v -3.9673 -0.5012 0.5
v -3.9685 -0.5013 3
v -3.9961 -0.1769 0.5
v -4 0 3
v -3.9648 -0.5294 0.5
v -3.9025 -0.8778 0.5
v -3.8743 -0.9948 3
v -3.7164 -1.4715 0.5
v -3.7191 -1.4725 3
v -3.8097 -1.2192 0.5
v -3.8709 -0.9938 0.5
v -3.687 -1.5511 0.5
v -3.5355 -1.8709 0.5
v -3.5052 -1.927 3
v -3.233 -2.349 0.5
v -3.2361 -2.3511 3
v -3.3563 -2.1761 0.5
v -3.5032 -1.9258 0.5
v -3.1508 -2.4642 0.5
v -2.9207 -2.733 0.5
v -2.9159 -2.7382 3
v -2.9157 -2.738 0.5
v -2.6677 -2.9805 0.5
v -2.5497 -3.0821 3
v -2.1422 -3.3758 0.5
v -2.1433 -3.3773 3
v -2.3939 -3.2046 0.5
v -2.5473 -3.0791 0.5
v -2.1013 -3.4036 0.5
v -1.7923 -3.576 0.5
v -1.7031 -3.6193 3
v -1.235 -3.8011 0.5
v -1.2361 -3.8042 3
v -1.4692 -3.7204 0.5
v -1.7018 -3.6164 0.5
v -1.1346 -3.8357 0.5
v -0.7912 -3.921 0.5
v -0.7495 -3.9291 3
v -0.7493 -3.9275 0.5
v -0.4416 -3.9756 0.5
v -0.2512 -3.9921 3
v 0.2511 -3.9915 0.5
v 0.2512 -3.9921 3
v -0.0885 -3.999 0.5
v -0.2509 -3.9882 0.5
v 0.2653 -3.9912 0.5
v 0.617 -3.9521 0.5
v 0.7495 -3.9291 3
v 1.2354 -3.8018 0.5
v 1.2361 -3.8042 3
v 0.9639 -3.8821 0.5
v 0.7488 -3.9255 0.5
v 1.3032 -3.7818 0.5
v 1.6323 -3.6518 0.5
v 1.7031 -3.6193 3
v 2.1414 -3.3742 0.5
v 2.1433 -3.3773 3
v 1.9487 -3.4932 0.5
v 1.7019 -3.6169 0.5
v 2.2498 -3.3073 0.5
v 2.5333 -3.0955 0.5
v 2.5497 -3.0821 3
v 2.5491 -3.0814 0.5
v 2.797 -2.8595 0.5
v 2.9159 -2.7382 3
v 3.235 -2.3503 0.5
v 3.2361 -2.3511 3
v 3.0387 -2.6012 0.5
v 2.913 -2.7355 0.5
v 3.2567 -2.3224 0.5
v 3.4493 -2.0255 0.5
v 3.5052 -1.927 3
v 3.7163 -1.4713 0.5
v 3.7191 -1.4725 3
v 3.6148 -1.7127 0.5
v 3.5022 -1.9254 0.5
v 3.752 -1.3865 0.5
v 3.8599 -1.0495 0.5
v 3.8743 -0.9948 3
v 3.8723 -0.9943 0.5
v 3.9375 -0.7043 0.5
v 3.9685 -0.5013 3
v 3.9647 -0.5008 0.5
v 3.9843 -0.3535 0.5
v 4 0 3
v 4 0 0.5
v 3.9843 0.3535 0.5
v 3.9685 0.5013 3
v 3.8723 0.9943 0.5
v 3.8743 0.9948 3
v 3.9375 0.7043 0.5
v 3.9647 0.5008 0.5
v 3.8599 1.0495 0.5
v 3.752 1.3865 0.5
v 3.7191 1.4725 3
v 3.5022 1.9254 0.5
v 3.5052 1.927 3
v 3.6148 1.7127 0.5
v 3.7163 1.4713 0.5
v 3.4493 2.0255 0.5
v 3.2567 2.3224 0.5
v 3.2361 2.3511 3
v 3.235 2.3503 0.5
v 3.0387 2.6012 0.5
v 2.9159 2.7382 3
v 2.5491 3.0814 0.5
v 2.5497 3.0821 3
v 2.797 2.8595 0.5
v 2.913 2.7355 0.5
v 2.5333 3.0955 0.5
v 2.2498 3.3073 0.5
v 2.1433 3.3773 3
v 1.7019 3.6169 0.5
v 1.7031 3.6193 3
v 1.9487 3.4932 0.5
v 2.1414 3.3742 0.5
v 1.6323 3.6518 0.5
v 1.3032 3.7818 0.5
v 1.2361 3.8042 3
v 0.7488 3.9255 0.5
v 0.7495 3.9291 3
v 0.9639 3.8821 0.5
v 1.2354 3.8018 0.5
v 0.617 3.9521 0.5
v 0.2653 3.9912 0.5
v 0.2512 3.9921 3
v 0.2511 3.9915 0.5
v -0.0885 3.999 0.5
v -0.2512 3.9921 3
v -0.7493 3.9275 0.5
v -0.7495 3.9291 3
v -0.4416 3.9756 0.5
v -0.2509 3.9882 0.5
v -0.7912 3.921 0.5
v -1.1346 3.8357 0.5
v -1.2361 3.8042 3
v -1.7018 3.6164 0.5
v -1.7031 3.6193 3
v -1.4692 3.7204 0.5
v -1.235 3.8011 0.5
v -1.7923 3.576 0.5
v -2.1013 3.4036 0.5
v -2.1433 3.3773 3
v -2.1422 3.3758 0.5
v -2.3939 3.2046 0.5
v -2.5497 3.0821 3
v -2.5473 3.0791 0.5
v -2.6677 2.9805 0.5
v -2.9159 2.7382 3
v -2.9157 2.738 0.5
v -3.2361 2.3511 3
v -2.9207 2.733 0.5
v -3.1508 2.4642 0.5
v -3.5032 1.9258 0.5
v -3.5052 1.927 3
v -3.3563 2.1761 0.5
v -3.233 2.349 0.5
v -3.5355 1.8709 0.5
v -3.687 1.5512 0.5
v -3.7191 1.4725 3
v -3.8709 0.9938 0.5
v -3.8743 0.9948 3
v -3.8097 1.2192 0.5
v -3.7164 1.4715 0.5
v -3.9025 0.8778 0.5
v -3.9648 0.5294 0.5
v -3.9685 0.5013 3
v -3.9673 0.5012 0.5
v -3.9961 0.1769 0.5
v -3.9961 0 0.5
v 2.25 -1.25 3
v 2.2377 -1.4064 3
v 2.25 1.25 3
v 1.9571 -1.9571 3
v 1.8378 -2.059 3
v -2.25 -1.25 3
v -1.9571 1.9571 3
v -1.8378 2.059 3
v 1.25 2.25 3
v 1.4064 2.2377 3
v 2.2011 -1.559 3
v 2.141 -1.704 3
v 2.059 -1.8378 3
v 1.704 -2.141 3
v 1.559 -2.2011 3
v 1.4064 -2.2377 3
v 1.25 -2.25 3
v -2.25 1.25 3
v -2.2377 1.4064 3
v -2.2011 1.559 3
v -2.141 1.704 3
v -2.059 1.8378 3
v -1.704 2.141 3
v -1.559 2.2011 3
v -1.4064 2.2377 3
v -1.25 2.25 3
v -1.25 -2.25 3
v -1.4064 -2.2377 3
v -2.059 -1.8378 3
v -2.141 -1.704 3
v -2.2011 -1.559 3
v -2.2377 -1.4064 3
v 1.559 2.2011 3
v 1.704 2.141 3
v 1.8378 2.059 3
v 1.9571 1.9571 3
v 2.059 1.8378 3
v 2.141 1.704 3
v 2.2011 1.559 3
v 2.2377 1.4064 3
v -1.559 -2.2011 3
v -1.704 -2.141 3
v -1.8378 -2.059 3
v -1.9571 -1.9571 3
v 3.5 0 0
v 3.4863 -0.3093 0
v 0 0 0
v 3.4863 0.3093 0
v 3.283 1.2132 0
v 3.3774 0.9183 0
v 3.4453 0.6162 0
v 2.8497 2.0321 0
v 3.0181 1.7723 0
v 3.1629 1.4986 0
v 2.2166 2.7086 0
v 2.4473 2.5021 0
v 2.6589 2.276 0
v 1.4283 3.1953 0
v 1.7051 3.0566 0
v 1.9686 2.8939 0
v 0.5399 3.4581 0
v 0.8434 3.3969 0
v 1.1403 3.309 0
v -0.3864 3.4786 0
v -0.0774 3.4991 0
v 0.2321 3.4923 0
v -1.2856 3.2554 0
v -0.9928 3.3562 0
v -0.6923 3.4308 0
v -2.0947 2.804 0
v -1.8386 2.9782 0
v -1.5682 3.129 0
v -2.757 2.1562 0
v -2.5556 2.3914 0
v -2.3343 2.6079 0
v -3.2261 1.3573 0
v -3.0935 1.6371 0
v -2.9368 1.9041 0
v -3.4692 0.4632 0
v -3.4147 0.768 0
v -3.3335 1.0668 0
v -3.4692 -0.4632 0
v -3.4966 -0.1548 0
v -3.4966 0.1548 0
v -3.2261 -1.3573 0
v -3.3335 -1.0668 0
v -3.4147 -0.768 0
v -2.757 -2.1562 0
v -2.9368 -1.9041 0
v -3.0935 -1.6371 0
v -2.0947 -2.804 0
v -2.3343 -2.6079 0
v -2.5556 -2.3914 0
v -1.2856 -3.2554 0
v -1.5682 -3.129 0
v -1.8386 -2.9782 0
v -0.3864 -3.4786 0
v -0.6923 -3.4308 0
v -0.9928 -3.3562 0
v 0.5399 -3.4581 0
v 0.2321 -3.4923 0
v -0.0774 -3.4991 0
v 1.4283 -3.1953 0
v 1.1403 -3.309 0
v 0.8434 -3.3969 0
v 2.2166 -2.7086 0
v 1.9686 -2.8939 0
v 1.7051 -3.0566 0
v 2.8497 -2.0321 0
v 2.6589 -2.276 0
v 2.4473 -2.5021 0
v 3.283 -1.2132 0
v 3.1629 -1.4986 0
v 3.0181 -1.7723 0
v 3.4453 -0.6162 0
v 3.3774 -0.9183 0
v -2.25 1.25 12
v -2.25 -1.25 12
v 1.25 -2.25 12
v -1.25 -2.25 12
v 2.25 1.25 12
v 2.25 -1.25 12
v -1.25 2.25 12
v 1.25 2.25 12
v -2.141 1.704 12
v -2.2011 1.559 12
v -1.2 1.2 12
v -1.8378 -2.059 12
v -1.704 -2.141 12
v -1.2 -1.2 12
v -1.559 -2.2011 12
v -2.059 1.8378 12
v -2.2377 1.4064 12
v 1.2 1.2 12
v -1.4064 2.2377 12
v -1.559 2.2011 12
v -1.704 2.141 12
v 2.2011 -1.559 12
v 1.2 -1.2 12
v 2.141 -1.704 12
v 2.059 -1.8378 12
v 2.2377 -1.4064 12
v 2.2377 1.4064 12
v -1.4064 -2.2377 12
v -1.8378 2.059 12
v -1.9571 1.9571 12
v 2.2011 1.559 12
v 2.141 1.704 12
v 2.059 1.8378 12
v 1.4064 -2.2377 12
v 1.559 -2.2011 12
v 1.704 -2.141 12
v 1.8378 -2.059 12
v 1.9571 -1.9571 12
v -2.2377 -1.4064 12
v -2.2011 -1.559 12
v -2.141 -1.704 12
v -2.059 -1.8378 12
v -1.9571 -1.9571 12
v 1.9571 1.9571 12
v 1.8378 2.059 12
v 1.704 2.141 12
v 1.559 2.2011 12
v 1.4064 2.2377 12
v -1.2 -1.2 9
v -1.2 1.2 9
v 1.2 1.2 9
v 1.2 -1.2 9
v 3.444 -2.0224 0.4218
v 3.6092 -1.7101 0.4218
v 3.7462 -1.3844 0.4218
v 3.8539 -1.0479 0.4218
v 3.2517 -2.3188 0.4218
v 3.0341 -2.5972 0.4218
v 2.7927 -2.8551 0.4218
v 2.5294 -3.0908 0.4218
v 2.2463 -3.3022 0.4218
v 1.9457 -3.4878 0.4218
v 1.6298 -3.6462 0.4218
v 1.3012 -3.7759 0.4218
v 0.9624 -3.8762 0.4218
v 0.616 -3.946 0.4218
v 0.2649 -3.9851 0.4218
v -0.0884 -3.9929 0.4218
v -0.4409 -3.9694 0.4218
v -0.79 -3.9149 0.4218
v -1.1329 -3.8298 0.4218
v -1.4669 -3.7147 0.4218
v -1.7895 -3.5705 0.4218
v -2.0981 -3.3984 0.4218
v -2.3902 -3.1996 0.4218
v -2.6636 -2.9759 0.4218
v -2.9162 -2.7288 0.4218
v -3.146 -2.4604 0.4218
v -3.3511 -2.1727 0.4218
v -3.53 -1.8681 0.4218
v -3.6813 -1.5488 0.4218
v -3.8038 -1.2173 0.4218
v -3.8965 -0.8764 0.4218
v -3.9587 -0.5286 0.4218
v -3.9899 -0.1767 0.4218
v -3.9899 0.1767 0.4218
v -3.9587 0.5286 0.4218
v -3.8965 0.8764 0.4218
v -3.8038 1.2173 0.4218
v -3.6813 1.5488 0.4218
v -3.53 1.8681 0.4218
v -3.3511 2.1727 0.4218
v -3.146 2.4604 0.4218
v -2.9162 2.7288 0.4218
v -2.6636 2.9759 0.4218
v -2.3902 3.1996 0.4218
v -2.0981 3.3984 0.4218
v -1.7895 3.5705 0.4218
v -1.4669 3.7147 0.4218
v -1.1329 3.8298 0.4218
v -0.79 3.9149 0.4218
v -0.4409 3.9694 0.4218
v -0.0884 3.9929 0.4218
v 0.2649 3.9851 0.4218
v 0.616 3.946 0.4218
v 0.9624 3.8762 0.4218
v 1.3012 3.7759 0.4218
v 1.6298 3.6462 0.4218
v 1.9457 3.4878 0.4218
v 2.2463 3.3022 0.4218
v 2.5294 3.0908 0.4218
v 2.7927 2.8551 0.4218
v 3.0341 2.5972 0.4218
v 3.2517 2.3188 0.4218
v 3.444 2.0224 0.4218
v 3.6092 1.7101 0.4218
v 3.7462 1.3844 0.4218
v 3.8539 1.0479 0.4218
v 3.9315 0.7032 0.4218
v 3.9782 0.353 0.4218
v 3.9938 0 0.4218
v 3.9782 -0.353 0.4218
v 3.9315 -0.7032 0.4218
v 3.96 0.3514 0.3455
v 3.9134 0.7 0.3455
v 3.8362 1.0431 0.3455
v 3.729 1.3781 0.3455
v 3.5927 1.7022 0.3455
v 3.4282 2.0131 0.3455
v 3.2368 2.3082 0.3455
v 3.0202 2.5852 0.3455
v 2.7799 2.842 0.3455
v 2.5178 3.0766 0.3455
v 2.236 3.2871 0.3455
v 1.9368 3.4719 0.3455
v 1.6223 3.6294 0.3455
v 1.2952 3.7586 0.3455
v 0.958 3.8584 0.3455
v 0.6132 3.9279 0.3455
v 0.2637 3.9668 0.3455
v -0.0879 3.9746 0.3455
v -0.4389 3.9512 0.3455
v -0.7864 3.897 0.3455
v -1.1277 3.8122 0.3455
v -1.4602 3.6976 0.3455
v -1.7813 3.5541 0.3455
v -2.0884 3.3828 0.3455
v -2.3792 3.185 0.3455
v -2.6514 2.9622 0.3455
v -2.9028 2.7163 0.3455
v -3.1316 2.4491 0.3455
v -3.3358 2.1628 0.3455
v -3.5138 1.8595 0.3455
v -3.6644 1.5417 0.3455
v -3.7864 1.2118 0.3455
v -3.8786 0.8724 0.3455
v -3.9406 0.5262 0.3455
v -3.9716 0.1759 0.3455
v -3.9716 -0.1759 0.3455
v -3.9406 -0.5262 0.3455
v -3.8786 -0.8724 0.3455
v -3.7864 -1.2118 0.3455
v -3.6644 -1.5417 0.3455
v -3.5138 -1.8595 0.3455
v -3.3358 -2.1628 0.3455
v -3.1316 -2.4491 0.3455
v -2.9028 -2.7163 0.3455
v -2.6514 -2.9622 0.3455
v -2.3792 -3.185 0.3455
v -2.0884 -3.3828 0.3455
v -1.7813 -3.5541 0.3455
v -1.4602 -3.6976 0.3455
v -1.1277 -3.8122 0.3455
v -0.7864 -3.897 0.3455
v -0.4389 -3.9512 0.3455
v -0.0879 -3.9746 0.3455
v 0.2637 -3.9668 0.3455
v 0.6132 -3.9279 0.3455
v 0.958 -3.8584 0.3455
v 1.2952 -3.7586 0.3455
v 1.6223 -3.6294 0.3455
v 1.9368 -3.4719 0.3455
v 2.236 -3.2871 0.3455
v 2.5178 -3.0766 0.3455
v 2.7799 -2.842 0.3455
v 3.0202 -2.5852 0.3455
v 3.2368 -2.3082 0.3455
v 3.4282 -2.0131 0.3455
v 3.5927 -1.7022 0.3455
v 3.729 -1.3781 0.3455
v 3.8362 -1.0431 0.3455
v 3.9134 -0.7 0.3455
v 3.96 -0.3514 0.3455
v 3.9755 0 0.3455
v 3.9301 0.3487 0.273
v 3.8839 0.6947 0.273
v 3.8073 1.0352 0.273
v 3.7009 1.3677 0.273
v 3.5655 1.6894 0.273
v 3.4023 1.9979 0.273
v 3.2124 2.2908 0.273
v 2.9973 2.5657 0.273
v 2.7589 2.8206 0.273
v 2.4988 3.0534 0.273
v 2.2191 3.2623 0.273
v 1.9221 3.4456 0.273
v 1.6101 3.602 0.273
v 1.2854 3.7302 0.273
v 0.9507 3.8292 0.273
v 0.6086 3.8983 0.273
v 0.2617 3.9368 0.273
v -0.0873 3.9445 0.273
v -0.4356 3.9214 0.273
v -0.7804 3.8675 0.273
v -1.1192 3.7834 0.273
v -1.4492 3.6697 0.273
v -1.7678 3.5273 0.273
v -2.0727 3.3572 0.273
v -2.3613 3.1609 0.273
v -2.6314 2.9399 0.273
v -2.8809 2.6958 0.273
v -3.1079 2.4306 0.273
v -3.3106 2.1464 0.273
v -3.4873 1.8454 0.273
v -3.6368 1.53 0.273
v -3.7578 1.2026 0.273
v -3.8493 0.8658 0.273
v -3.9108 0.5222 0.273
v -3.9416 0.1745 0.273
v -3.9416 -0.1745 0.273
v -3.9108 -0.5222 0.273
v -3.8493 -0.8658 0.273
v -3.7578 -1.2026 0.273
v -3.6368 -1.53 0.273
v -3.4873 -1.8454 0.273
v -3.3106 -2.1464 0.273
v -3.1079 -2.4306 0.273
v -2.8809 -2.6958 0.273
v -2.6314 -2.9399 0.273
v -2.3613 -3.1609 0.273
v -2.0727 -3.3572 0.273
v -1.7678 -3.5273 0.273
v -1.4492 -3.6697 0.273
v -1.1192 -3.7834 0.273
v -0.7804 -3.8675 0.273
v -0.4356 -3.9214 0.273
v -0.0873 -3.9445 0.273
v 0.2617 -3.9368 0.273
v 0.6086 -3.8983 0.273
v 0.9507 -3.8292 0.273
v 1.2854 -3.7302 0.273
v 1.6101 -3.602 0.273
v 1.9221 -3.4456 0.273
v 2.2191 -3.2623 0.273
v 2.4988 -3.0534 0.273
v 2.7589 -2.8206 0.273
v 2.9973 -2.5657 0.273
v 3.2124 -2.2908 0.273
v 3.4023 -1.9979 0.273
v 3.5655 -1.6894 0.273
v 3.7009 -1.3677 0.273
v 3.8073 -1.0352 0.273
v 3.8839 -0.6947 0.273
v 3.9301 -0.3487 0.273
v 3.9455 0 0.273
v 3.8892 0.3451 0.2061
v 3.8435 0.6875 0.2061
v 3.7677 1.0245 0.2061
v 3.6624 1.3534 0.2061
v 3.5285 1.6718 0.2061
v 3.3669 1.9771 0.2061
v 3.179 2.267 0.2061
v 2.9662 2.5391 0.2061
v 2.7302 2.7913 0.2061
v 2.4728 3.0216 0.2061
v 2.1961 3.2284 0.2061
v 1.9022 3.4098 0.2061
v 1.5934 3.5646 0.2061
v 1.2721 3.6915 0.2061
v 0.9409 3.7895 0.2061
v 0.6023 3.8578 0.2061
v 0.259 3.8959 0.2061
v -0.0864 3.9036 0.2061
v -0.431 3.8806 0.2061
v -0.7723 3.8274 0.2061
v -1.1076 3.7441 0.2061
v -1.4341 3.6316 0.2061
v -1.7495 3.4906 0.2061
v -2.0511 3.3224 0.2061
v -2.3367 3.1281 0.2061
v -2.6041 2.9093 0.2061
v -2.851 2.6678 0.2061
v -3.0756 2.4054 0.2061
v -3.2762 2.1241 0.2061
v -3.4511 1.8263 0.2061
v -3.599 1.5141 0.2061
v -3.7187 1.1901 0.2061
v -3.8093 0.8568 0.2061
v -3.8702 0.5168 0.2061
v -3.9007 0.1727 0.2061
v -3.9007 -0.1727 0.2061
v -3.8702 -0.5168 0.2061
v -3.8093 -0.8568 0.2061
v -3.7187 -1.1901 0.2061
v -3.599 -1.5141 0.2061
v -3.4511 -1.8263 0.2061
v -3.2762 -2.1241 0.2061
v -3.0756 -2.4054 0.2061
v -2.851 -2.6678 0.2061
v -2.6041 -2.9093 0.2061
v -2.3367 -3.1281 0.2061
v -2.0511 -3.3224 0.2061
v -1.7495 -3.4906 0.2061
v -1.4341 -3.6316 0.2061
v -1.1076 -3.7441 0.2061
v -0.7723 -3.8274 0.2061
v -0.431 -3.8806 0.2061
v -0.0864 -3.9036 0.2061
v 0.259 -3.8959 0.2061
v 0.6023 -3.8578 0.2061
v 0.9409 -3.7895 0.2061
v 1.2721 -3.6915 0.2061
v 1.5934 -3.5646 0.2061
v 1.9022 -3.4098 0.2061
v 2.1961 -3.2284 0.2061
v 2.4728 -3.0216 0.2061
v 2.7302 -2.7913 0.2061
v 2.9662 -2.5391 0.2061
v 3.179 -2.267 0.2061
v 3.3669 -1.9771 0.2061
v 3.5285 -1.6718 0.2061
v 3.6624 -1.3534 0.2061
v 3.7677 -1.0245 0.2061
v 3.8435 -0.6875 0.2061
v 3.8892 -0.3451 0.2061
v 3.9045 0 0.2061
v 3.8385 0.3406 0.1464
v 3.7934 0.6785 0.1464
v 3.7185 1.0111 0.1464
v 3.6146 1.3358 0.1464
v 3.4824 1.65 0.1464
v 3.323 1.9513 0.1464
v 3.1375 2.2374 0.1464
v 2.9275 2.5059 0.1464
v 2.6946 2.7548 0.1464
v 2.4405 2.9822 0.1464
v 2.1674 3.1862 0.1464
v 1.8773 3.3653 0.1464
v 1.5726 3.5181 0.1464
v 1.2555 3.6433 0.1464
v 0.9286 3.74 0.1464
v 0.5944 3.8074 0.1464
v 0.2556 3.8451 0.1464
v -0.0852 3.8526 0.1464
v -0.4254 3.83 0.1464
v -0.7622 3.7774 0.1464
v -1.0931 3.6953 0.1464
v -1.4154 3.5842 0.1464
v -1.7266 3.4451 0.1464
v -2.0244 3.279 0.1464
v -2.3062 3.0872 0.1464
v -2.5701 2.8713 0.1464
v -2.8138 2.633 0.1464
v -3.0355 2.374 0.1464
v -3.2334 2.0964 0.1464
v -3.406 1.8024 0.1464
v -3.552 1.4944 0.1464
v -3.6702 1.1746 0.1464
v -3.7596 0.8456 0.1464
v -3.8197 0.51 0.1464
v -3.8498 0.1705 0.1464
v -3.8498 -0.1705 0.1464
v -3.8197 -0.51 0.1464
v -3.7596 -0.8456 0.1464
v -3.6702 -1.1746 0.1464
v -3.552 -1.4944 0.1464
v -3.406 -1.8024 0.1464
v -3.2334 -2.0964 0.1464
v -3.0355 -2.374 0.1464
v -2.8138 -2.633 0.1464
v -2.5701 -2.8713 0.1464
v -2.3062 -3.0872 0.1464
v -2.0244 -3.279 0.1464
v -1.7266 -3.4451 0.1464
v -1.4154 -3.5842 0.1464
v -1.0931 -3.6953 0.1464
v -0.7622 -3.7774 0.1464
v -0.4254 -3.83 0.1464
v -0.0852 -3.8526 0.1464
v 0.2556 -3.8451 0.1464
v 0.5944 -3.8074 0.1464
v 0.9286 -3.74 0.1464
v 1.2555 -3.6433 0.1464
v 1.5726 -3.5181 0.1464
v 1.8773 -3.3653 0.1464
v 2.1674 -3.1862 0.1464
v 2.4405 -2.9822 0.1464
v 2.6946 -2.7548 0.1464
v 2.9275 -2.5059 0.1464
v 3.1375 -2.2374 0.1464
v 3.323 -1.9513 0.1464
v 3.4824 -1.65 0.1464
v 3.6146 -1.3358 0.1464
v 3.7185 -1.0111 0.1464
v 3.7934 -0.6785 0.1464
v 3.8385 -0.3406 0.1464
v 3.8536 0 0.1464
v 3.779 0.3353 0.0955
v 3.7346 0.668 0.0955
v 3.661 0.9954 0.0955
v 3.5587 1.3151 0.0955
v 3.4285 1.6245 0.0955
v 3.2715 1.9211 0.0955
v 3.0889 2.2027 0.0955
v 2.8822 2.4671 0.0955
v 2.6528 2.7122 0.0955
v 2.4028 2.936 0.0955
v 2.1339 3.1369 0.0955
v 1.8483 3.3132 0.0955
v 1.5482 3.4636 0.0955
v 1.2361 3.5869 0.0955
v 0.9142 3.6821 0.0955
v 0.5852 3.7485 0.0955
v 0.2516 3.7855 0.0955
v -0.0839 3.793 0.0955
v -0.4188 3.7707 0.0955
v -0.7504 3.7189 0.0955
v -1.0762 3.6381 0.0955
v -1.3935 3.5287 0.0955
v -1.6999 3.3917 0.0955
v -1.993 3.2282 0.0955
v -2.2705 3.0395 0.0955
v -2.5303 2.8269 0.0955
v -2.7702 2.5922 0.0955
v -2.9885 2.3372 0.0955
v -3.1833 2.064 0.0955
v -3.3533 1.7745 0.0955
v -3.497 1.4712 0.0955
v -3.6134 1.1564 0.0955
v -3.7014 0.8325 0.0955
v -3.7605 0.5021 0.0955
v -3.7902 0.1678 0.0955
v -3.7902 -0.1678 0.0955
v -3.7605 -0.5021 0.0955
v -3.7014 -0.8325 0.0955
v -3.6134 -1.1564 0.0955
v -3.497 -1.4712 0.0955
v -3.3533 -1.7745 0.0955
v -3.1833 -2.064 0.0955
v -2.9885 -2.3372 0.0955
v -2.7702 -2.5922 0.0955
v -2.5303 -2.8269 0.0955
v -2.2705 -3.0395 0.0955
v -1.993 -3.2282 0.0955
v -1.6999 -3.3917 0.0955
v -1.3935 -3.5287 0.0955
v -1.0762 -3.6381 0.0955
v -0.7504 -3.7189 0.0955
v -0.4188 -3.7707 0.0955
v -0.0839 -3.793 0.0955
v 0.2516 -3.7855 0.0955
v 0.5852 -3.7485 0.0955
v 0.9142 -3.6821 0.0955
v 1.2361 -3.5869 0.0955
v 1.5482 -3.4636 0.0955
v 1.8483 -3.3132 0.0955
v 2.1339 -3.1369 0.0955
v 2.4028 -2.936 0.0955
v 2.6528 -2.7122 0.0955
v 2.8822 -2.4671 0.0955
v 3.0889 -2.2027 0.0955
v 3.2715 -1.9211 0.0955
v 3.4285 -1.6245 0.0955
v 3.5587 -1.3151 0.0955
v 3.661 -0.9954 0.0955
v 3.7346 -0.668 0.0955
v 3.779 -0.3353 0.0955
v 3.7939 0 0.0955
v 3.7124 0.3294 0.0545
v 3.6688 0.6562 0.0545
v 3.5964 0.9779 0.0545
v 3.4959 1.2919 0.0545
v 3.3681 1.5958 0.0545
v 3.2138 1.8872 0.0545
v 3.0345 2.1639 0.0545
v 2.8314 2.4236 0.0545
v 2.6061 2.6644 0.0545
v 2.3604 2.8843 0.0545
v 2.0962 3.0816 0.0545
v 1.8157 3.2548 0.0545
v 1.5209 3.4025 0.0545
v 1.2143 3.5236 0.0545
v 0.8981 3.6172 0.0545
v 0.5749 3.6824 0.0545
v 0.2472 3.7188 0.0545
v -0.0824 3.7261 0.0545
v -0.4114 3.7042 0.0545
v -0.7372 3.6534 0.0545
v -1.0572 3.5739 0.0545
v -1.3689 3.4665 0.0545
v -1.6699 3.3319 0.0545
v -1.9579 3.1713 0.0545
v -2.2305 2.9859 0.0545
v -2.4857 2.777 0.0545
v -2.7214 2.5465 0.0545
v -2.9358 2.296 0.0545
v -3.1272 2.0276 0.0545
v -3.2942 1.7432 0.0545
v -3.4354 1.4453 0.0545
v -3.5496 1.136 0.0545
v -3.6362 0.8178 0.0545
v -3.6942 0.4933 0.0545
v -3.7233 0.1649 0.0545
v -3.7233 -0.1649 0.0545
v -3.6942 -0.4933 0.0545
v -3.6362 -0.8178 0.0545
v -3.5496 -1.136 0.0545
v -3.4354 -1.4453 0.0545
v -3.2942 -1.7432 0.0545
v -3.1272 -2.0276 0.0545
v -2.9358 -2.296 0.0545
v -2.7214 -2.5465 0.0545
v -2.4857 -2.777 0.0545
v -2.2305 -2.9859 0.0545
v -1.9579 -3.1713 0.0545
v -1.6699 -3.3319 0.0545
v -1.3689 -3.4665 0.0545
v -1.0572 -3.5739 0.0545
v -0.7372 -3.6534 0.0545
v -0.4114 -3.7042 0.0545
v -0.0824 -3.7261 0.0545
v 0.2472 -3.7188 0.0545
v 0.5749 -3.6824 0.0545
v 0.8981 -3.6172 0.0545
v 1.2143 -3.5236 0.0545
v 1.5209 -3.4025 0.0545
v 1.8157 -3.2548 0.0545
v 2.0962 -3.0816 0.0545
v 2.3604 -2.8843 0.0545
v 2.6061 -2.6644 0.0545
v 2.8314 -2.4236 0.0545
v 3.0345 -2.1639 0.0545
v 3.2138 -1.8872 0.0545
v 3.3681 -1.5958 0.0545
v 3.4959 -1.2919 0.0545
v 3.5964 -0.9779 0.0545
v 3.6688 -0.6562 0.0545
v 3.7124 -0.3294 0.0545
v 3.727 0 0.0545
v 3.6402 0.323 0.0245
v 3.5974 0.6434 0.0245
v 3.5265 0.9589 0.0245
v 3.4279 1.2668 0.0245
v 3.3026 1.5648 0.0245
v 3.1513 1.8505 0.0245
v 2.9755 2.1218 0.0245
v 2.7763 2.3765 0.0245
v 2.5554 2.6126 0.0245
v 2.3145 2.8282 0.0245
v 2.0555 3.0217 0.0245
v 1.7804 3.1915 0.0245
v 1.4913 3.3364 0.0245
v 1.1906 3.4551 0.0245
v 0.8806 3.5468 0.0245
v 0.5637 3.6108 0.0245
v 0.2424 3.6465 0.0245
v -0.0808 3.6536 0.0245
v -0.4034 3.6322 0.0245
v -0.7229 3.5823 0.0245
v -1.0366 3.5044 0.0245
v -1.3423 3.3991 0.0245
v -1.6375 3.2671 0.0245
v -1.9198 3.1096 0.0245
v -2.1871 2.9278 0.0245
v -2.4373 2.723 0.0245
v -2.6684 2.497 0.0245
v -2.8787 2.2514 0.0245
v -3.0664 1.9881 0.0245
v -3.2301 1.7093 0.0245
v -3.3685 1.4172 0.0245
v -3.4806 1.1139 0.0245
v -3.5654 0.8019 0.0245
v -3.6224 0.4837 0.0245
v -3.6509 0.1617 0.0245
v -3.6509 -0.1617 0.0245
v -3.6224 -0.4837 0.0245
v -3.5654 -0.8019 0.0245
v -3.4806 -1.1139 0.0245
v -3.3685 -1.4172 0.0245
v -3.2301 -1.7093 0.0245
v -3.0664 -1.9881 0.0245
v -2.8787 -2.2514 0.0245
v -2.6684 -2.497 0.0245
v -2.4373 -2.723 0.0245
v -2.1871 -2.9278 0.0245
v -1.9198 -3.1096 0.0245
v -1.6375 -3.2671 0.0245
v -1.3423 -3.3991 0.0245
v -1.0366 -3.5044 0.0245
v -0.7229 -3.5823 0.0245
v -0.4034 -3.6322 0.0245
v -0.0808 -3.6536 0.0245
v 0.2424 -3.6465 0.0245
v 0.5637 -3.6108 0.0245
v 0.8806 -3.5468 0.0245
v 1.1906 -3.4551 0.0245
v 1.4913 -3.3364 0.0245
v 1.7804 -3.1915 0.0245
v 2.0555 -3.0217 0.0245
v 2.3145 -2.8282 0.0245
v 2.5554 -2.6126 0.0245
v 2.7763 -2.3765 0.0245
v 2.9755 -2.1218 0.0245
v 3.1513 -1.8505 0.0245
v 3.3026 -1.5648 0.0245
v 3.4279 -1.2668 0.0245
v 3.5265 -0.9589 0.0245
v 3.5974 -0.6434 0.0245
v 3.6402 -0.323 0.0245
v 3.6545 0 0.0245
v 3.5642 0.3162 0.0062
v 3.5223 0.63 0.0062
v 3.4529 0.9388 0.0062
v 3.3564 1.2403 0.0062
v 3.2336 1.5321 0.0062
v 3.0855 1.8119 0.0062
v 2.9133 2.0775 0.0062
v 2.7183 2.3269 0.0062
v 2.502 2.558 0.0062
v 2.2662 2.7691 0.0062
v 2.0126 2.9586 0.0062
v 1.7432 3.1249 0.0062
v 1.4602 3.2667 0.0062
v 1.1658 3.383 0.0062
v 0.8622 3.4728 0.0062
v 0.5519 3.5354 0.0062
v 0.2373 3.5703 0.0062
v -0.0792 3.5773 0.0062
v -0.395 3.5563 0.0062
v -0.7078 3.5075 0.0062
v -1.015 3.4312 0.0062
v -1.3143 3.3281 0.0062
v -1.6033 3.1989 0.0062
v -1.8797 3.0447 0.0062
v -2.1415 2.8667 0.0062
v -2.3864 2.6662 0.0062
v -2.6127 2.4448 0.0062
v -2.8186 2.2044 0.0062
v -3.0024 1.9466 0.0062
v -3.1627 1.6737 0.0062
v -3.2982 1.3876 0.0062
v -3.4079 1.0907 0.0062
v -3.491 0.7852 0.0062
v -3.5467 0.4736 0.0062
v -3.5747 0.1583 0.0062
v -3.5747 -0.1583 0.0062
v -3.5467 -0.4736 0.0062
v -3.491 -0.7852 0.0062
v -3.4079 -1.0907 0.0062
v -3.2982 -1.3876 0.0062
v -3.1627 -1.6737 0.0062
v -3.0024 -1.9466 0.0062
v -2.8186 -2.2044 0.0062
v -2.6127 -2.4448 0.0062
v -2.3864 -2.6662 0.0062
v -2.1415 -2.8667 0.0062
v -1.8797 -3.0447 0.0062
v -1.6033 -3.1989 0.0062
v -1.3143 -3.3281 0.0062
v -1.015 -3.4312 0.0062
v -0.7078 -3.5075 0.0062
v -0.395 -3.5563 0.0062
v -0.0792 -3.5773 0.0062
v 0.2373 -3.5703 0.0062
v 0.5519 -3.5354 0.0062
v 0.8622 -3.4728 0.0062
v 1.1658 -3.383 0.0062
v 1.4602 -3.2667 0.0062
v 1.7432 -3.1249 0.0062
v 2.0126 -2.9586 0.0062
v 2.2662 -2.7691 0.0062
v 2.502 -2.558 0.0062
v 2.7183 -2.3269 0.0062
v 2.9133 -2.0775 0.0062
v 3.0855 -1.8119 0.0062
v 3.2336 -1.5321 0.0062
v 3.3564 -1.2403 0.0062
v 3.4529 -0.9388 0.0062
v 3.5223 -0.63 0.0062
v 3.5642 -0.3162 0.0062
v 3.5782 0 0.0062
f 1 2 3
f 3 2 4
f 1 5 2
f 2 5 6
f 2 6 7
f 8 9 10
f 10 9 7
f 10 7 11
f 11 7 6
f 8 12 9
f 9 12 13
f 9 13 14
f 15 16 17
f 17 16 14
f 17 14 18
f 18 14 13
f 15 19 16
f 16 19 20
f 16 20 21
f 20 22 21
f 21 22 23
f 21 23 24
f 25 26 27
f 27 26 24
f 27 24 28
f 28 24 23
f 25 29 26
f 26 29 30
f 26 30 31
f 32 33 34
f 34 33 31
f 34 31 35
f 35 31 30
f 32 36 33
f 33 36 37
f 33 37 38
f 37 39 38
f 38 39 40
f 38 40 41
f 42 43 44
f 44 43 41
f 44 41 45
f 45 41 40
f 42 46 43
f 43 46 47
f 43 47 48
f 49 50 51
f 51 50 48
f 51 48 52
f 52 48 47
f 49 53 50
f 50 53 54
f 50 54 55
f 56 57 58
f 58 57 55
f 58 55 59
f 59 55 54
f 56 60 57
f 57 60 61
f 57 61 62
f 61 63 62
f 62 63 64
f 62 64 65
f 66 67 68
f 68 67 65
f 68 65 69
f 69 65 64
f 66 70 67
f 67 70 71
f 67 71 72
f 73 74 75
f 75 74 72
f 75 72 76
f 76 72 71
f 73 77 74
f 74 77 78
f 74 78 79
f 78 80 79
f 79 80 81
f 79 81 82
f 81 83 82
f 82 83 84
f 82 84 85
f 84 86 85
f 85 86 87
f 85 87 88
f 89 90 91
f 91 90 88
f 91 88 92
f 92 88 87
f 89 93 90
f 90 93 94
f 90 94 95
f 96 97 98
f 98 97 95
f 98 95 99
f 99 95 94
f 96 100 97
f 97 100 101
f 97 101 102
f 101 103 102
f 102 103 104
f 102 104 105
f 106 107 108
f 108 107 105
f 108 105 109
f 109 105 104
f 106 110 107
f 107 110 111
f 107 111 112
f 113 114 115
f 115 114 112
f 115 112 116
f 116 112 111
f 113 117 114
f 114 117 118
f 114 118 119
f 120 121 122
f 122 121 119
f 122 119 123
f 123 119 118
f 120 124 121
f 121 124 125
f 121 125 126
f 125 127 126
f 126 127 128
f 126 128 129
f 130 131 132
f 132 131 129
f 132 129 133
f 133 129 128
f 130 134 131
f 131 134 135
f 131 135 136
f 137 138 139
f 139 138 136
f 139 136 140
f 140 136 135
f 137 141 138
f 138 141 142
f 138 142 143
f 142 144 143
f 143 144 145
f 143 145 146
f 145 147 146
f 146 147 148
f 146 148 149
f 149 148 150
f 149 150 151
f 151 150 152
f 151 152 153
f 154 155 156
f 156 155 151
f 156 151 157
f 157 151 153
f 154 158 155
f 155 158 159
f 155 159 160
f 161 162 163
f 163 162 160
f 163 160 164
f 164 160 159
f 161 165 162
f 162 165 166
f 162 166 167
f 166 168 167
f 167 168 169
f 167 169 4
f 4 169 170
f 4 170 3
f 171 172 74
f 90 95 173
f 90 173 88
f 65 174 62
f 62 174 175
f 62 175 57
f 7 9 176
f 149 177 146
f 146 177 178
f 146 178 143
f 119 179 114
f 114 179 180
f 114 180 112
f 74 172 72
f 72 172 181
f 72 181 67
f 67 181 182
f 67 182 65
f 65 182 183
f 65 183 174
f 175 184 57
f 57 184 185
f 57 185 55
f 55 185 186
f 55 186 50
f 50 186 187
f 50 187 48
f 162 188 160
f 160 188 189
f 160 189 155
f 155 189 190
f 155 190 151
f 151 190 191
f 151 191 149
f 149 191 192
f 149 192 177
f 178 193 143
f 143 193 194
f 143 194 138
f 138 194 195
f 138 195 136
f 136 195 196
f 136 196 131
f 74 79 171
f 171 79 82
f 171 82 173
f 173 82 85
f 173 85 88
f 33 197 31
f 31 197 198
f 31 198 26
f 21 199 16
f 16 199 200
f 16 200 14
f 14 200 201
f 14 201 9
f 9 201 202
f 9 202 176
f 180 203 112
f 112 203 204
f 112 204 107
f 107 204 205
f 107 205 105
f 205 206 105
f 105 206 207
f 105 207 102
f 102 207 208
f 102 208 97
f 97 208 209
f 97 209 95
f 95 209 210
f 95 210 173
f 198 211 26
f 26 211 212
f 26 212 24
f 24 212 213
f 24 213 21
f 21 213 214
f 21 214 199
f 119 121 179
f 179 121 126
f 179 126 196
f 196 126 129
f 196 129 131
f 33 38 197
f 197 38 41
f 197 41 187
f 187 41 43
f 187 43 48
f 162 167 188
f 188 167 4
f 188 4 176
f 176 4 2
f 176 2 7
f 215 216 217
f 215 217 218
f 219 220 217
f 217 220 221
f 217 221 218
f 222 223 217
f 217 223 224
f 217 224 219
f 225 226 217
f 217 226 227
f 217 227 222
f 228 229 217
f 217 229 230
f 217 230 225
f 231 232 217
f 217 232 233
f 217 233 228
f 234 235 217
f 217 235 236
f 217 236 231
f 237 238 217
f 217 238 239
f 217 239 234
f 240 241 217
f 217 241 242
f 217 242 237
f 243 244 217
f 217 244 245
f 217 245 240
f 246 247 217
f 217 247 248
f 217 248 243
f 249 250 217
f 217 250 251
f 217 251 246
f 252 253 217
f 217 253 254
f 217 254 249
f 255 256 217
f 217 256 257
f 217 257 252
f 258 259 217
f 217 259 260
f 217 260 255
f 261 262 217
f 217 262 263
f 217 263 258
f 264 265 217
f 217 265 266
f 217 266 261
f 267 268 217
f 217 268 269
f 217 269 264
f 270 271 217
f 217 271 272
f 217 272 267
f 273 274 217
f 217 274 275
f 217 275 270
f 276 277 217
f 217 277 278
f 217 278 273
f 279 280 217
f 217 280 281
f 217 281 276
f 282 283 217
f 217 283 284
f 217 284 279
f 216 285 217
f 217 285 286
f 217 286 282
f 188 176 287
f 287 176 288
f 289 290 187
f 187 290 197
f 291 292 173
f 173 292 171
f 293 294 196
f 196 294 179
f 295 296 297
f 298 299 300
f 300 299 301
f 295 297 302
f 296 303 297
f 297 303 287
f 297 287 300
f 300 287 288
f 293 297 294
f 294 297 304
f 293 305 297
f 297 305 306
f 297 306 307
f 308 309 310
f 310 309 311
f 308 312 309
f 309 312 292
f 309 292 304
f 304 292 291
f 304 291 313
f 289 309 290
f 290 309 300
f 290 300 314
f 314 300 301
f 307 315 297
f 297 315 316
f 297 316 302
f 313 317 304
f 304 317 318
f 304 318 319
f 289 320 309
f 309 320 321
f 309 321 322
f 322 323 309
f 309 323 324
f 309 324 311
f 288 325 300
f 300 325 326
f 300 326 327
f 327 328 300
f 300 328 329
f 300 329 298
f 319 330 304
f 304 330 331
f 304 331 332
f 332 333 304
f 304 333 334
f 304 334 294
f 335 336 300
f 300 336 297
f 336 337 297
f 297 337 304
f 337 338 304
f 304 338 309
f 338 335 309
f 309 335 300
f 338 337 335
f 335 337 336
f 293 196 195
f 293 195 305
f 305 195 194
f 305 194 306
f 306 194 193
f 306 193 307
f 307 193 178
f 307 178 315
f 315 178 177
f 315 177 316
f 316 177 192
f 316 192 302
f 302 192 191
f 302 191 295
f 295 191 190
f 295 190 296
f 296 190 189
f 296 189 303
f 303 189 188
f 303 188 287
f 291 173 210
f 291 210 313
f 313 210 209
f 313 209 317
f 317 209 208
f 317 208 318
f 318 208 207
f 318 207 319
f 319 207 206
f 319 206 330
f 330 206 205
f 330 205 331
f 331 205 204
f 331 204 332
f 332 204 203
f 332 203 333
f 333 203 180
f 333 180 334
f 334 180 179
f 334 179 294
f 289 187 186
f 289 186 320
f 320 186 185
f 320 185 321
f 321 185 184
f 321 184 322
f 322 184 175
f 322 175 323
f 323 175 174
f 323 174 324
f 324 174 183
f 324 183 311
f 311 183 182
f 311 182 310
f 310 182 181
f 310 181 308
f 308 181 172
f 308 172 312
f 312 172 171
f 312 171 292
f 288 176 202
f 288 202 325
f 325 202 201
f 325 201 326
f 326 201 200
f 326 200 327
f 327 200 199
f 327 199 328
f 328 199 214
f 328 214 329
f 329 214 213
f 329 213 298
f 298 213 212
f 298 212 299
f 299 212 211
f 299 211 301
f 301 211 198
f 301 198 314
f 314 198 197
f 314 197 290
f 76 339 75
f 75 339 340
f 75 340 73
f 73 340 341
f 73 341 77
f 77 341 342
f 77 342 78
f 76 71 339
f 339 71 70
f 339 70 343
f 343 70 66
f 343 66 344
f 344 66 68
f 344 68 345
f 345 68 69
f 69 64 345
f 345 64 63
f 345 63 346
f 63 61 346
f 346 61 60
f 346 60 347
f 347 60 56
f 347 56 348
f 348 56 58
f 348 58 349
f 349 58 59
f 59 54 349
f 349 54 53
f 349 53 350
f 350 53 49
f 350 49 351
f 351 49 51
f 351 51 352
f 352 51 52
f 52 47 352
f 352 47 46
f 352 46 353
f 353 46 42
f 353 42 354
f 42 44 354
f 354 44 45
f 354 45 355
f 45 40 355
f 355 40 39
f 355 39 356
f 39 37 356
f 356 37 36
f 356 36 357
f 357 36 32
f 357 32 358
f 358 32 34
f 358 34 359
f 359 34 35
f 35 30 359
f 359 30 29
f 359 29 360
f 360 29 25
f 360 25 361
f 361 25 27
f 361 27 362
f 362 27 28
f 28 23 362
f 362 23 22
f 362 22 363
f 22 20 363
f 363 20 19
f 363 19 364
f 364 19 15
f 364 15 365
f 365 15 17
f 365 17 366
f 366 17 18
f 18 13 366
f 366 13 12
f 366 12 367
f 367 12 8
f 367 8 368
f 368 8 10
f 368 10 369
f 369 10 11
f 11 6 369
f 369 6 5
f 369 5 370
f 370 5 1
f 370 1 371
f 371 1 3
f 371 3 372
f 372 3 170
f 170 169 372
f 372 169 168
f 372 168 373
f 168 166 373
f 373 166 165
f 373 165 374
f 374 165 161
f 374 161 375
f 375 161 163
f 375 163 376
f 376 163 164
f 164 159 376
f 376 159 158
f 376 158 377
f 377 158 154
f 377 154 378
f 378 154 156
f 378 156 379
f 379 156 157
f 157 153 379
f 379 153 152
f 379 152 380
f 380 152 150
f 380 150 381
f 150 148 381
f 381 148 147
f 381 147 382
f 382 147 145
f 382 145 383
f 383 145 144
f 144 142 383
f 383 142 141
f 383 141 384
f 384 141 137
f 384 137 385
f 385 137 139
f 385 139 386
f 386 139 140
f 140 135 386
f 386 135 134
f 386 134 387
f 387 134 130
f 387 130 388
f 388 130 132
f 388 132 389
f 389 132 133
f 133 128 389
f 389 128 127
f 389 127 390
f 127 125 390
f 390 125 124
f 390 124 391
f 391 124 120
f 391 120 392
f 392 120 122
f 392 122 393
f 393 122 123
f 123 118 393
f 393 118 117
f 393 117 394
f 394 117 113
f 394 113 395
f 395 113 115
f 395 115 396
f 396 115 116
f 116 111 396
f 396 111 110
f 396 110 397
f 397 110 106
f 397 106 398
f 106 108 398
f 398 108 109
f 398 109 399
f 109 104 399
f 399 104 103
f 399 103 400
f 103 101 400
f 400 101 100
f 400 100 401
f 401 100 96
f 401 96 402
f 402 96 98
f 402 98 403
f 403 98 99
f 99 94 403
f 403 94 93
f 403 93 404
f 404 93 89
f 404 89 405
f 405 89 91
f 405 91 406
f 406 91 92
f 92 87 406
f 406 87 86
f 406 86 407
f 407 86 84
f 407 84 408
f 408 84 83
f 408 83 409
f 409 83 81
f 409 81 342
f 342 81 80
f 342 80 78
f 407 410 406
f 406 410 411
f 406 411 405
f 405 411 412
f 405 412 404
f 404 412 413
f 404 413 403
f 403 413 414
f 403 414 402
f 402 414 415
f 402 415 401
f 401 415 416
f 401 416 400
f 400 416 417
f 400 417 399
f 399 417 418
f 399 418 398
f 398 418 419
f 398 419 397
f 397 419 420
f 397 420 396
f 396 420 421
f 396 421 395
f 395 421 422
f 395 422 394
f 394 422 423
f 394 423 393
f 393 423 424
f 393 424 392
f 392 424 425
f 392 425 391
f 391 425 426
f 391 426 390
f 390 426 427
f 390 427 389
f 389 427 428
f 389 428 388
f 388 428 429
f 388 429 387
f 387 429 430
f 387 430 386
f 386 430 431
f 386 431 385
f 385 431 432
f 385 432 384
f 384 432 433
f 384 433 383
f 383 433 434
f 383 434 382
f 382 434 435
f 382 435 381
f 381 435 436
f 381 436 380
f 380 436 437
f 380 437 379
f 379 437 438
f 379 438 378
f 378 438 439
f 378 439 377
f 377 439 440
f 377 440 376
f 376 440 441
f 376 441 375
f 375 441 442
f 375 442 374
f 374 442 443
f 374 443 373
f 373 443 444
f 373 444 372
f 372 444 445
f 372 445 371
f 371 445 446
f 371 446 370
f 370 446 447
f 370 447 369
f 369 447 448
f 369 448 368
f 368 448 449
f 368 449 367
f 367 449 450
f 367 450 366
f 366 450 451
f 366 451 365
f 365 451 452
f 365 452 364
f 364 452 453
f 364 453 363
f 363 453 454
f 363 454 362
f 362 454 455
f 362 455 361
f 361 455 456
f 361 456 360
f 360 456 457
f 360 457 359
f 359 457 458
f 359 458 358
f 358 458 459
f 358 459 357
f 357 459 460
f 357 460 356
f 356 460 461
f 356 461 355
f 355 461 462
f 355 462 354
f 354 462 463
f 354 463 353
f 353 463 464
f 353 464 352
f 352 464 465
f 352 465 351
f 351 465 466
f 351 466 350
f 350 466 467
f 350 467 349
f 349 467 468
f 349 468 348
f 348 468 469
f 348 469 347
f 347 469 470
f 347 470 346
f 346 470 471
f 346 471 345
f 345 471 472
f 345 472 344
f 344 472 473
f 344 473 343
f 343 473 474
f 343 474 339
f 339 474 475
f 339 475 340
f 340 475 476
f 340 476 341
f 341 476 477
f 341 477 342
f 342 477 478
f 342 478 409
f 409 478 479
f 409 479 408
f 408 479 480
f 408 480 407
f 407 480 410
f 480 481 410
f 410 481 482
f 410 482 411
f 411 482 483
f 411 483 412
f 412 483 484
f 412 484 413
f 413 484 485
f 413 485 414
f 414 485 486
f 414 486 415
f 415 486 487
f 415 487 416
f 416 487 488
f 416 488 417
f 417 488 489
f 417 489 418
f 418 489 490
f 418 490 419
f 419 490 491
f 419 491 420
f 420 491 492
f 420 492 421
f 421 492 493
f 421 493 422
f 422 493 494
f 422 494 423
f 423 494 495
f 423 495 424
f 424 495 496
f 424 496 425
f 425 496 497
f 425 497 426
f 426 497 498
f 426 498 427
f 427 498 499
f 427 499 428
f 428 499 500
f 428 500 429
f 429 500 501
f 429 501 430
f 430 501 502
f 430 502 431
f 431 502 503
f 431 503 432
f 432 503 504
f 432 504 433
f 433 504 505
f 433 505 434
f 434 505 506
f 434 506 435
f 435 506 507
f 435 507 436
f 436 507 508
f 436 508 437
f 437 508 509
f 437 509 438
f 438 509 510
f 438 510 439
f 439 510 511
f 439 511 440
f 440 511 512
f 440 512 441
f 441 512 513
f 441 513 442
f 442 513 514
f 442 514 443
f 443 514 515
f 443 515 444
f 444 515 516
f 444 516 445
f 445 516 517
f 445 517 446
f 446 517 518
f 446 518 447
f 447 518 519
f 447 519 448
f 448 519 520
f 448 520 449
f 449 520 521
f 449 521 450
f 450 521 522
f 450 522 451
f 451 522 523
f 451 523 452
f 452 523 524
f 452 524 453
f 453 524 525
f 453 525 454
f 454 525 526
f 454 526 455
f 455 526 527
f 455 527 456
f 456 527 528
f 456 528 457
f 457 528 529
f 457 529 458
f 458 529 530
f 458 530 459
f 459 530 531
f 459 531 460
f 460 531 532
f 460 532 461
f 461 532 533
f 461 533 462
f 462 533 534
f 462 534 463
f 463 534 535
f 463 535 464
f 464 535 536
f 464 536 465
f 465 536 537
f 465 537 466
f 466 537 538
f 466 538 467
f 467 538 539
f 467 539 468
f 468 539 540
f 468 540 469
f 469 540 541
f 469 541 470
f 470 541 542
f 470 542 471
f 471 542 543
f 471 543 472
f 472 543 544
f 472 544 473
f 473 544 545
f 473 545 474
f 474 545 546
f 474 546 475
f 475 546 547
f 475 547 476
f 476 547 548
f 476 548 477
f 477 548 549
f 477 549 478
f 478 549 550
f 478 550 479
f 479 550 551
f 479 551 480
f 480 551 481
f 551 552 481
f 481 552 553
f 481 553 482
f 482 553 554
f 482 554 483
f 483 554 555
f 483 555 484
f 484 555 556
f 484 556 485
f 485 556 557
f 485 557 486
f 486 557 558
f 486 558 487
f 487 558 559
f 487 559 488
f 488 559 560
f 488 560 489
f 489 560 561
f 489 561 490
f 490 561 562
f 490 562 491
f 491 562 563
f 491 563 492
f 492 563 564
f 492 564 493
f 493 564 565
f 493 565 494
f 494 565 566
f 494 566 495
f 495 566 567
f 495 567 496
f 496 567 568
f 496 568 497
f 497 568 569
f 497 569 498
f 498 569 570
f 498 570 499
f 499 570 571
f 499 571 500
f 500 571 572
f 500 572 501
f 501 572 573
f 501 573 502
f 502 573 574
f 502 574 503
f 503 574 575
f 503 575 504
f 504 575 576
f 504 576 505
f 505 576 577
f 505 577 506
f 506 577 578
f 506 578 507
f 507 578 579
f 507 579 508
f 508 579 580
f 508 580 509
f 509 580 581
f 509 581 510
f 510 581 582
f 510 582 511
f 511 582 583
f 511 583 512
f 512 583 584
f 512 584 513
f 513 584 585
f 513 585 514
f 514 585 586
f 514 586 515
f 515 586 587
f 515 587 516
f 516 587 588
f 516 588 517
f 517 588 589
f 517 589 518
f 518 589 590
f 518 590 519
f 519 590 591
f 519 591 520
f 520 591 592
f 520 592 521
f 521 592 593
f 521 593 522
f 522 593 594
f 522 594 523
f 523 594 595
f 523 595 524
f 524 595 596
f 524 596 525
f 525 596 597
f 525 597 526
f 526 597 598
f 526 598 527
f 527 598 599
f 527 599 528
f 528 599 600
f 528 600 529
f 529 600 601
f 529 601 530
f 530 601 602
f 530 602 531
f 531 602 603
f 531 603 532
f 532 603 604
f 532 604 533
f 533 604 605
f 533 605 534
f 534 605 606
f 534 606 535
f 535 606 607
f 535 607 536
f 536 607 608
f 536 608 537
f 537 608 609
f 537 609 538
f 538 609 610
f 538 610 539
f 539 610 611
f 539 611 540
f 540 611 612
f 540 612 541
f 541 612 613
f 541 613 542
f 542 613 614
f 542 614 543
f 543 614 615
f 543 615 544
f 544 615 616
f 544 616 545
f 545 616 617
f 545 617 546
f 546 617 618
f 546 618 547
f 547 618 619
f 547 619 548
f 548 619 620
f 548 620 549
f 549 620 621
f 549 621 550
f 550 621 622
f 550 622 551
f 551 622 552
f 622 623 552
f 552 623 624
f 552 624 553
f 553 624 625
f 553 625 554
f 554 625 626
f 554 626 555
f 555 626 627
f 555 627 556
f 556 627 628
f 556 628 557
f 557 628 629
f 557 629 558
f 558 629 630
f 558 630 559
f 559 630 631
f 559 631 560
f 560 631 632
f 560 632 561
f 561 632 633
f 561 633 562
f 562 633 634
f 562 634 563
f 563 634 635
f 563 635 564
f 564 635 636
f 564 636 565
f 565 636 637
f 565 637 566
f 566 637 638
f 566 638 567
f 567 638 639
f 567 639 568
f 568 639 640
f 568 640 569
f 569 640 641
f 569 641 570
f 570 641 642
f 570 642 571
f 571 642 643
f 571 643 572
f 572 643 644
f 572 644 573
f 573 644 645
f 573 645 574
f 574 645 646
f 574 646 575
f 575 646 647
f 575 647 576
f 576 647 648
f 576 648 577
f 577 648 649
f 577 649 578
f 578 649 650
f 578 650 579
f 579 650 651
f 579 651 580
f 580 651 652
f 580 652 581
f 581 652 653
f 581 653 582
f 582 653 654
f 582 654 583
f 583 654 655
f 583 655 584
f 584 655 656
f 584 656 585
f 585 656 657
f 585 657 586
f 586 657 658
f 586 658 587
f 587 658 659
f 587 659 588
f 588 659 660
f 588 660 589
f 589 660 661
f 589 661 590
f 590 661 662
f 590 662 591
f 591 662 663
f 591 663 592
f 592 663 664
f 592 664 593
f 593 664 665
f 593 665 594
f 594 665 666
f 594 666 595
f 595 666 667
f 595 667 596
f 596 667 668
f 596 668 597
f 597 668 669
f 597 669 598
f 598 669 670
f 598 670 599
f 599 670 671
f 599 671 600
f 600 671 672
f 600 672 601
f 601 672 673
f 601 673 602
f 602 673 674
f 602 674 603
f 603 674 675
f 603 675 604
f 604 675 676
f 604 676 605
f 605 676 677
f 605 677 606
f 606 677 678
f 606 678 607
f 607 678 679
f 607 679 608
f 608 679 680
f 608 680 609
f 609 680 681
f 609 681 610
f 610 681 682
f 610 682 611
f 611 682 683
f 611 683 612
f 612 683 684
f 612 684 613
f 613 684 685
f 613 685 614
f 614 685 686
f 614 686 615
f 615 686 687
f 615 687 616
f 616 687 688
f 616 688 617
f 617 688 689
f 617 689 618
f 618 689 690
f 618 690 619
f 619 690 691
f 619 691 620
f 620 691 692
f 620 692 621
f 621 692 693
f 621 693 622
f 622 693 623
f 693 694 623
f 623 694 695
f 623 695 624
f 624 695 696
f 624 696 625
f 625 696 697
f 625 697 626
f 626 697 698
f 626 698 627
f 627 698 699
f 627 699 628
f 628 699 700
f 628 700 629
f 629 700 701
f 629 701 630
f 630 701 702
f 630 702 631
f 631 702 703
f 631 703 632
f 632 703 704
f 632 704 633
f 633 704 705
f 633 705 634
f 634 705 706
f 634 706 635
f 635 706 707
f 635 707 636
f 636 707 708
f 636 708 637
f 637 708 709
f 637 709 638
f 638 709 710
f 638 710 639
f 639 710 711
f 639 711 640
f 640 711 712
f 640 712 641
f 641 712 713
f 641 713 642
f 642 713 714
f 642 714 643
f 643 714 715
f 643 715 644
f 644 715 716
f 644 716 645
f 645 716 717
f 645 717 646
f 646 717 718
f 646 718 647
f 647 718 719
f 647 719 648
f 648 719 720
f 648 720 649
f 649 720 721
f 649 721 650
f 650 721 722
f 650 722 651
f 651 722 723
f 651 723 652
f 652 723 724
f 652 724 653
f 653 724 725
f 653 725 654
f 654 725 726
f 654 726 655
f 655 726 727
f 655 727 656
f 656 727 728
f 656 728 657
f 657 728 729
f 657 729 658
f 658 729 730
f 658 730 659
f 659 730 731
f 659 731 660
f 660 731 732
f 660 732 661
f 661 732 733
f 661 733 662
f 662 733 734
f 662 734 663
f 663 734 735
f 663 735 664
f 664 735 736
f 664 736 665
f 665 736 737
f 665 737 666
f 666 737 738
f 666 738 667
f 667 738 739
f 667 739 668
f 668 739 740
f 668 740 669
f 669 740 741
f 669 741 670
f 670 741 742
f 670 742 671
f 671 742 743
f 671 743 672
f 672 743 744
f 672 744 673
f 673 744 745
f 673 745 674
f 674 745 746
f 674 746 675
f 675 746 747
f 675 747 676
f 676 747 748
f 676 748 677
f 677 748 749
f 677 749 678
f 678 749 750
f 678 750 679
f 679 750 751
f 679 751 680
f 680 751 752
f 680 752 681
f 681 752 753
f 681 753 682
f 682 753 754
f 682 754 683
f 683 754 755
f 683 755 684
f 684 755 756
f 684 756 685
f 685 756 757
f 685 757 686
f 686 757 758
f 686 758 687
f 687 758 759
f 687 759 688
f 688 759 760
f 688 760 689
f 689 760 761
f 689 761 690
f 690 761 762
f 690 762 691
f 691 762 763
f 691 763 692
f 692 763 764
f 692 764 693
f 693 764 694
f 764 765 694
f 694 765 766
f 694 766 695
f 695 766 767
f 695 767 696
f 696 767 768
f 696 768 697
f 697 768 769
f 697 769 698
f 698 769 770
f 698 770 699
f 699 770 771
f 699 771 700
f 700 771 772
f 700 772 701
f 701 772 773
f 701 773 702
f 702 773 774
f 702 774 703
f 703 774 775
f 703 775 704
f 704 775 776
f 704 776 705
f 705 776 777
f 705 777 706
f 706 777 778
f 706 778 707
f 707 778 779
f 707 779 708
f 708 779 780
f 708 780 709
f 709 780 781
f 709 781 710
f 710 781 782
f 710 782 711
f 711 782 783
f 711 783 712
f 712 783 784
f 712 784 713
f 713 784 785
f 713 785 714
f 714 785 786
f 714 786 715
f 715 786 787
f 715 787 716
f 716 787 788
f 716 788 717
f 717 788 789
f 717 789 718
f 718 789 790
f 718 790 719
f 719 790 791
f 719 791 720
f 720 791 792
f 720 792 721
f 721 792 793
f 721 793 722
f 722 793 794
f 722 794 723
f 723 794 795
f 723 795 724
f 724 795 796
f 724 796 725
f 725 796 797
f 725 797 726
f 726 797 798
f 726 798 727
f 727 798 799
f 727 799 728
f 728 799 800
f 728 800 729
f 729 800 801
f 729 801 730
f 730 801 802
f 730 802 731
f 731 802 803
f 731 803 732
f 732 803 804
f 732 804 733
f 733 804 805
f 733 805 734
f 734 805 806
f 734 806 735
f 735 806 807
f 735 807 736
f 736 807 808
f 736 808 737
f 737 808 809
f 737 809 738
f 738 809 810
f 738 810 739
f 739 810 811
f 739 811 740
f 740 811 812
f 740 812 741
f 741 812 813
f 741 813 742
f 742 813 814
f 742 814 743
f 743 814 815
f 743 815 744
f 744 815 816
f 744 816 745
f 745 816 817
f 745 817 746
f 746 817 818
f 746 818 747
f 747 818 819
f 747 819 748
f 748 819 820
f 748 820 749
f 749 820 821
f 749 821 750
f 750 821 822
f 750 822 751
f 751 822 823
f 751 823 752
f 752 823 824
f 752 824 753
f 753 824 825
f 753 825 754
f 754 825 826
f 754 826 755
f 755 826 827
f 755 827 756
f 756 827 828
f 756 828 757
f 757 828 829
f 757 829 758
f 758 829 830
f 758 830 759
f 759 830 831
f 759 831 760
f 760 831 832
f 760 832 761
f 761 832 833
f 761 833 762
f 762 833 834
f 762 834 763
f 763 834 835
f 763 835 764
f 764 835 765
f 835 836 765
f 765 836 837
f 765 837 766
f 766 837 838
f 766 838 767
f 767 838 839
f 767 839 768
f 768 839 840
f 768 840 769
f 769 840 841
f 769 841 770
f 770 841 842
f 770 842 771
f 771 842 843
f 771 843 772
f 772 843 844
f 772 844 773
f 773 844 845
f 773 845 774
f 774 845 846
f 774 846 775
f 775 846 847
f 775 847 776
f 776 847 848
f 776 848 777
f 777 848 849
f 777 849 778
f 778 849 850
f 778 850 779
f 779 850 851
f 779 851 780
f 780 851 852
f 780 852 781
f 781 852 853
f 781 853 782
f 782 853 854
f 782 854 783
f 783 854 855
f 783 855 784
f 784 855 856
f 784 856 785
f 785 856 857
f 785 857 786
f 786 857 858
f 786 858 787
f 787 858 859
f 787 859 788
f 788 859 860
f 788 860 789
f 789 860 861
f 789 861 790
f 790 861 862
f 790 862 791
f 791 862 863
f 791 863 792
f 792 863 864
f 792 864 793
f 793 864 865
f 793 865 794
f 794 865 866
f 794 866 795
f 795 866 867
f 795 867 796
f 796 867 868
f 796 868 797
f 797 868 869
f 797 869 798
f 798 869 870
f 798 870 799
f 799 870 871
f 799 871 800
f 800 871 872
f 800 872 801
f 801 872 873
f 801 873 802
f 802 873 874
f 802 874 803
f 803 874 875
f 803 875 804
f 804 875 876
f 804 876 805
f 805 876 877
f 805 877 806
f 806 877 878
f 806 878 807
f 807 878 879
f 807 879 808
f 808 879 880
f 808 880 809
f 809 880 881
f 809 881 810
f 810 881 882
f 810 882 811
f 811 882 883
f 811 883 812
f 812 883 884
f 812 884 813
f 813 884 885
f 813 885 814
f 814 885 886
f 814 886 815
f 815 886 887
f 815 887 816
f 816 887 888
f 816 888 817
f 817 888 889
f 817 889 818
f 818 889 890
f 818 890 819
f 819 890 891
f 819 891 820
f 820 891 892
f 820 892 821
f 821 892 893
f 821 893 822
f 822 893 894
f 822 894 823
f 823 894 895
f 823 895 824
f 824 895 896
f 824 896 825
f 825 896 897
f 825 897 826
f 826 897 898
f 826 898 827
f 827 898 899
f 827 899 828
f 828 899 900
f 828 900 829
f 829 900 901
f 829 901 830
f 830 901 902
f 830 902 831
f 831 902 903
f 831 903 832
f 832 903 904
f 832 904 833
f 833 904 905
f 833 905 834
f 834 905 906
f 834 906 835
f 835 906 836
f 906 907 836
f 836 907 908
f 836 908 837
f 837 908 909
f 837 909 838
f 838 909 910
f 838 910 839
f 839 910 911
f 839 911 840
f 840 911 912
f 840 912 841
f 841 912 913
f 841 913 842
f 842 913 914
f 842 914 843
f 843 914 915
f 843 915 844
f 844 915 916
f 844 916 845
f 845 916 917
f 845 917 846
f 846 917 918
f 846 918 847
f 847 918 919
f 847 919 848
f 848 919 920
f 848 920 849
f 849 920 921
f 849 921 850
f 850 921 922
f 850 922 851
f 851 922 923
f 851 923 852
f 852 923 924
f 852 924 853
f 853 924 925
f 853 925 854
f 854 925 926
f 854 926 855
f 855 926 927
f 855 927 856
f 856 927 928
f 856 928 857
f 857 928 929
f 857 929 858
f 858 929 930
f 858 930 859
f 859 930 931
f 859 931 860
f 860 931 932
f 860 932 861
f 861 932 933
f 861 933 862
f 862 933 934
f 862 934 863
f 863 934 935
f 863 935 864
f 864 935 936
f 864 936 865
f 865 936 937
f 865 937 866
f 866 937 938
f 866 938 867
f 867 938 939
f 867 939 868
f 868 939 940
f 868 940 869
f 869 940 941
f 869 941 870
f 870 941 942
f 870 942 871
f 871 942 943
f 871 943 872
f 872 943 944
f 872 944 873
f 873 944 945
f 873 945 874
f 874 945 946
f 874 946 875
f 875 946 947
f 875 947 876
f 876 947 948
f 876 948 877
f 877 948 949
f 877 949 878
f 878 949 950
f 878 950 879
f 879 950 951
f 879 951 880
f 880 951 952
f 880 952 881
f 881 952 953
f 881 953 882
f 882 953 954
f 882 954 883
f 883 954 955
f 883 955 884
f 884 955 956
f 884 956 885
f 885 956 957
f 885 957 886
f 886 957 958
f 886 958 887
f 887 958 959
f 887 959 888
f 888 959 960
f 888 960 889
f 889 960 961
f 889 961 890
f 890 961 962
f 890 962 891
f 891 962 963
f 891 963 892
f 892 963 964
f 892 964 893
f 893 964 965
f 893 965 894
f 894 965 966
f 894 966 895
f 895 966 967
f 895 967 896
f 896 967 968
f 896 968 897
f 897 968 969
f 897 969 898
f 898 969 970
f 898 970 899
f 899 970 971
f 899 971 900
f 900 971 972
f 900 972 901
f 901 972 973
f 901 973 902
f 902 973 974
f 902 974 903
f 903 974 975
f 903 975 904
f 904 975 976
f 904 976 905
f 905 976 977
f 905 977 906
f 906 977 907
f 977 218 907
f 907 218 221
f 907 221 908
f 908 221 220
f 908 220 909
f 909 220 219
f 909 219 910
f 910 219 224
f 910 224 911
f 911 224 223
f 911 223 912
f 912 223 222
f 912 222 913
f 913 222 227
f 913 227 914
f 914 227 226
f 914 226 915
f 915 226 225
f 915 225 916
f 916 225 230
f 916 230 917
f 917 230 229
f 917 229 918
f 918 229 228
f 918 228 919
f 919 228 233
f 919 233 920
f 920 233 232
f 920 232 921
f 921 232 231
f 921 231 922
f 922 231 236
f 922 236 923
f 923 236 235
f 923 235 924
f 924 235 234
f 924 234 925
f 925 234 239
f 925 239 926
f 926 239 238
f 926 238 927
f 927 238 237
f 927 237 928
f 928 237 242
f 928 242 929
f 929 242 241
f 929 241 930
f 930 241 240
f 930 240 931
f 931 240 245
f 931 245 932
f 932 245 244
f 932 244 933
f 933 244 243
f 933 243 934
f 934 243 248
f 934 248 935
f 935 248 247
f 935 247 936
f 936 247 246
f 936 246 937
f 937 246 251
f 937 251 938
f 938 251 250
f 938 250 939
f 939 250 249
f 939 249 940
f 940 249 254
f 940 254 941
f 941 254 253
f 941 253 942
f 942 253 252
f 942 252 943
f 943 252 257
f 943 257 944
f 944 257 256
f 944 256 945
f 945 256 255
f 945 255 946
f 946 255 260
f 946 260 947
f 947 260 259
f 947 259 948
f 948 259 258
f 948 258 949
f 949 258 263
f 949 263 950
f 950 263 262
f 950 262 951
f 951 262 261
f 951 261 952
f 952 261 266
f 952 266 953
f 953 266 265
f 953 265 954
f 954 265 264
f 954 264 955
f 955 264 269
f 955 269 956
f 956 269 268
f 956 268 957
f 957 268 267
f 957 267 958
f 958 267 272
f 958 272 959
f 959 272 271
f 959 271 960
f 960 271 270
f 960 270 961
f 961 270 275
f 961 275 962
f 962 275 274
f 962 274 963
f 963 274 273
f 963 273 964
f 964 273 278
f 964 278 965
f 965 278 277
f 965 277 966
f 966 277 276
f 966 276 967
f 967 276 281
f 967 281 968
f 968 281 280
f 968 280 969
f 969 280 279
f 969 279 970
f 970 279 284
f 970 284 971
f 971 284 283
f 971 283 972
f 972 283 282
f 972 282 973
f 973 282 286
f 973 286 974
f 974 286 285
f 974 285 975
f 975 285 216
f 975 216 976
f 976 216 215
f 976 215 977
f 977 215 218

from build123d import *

# Parameters (mm, degrees)
ESQUISSE1_R             = 4
BOSS_EXTRU_1_DEPTH      = 3
ESQUISSE2_W             = 4.5
ESQUISSE2_H             = 4.5
BOSS_EXTRU_2_DEPTH      = 9
ESQUISSE3_W             = 2.4
ESQUISSE3_H             = 2.4
ENL_V_MAT_EXTRU_1_DEPTH = 3
CONG_1_R                = 1
CONG_2_R                = 0.5


with BuildPart() as part:
    # Esquisse1 → Boss.-Extru.1 (new body)
    with BuildSketch(Plane.XY):
        Circle(ESQUISSE1_R)
    extrude(amount=BOSS_EXTRU_1_DEPTH)

    # Esquisse2 → Boss.-Extru.2 (add)
    with BuildSketch(Plane.XY.offset(3)):
        Rectangle(ESQUISSE2_W, ESQUISSE2_H)
    extrude(amount=BOSS_EXTRU_2_DEPTH)

    # Esquisse3 → Enlèv. mat.-Extru.1 (cut)
    with BuildSketch(Plane.XY.offset(12)):
        Rectangle(ESQUISSE3_W, ESQUISSE3_H)
    extrude(amount=-ENL_V_MAT_EXTRU_1_DEPTH, mode=Mode.SUBTRACT)

    # Congé1
    cong_1_edges = [part.edges().sort_by_distance(p)[0] for p in [
        (-2.25, 2.25, 7.5),
        (-2.25, -2.25, 7.5),
        (2.25, -2.25, 7.5),
        (2.25, 2.25, 7.5),
    ]]
    fillet(cong_1_edges, radius=CONG_1_R)

    # Congé2
    cong_2_edges = [part.edges().sort_by_distance(p)[0] for p in [
        (-4, 0, 0),
    ]]
    fillet(cong_2_edges, radius=CONG_2_R)


solid = part.part
